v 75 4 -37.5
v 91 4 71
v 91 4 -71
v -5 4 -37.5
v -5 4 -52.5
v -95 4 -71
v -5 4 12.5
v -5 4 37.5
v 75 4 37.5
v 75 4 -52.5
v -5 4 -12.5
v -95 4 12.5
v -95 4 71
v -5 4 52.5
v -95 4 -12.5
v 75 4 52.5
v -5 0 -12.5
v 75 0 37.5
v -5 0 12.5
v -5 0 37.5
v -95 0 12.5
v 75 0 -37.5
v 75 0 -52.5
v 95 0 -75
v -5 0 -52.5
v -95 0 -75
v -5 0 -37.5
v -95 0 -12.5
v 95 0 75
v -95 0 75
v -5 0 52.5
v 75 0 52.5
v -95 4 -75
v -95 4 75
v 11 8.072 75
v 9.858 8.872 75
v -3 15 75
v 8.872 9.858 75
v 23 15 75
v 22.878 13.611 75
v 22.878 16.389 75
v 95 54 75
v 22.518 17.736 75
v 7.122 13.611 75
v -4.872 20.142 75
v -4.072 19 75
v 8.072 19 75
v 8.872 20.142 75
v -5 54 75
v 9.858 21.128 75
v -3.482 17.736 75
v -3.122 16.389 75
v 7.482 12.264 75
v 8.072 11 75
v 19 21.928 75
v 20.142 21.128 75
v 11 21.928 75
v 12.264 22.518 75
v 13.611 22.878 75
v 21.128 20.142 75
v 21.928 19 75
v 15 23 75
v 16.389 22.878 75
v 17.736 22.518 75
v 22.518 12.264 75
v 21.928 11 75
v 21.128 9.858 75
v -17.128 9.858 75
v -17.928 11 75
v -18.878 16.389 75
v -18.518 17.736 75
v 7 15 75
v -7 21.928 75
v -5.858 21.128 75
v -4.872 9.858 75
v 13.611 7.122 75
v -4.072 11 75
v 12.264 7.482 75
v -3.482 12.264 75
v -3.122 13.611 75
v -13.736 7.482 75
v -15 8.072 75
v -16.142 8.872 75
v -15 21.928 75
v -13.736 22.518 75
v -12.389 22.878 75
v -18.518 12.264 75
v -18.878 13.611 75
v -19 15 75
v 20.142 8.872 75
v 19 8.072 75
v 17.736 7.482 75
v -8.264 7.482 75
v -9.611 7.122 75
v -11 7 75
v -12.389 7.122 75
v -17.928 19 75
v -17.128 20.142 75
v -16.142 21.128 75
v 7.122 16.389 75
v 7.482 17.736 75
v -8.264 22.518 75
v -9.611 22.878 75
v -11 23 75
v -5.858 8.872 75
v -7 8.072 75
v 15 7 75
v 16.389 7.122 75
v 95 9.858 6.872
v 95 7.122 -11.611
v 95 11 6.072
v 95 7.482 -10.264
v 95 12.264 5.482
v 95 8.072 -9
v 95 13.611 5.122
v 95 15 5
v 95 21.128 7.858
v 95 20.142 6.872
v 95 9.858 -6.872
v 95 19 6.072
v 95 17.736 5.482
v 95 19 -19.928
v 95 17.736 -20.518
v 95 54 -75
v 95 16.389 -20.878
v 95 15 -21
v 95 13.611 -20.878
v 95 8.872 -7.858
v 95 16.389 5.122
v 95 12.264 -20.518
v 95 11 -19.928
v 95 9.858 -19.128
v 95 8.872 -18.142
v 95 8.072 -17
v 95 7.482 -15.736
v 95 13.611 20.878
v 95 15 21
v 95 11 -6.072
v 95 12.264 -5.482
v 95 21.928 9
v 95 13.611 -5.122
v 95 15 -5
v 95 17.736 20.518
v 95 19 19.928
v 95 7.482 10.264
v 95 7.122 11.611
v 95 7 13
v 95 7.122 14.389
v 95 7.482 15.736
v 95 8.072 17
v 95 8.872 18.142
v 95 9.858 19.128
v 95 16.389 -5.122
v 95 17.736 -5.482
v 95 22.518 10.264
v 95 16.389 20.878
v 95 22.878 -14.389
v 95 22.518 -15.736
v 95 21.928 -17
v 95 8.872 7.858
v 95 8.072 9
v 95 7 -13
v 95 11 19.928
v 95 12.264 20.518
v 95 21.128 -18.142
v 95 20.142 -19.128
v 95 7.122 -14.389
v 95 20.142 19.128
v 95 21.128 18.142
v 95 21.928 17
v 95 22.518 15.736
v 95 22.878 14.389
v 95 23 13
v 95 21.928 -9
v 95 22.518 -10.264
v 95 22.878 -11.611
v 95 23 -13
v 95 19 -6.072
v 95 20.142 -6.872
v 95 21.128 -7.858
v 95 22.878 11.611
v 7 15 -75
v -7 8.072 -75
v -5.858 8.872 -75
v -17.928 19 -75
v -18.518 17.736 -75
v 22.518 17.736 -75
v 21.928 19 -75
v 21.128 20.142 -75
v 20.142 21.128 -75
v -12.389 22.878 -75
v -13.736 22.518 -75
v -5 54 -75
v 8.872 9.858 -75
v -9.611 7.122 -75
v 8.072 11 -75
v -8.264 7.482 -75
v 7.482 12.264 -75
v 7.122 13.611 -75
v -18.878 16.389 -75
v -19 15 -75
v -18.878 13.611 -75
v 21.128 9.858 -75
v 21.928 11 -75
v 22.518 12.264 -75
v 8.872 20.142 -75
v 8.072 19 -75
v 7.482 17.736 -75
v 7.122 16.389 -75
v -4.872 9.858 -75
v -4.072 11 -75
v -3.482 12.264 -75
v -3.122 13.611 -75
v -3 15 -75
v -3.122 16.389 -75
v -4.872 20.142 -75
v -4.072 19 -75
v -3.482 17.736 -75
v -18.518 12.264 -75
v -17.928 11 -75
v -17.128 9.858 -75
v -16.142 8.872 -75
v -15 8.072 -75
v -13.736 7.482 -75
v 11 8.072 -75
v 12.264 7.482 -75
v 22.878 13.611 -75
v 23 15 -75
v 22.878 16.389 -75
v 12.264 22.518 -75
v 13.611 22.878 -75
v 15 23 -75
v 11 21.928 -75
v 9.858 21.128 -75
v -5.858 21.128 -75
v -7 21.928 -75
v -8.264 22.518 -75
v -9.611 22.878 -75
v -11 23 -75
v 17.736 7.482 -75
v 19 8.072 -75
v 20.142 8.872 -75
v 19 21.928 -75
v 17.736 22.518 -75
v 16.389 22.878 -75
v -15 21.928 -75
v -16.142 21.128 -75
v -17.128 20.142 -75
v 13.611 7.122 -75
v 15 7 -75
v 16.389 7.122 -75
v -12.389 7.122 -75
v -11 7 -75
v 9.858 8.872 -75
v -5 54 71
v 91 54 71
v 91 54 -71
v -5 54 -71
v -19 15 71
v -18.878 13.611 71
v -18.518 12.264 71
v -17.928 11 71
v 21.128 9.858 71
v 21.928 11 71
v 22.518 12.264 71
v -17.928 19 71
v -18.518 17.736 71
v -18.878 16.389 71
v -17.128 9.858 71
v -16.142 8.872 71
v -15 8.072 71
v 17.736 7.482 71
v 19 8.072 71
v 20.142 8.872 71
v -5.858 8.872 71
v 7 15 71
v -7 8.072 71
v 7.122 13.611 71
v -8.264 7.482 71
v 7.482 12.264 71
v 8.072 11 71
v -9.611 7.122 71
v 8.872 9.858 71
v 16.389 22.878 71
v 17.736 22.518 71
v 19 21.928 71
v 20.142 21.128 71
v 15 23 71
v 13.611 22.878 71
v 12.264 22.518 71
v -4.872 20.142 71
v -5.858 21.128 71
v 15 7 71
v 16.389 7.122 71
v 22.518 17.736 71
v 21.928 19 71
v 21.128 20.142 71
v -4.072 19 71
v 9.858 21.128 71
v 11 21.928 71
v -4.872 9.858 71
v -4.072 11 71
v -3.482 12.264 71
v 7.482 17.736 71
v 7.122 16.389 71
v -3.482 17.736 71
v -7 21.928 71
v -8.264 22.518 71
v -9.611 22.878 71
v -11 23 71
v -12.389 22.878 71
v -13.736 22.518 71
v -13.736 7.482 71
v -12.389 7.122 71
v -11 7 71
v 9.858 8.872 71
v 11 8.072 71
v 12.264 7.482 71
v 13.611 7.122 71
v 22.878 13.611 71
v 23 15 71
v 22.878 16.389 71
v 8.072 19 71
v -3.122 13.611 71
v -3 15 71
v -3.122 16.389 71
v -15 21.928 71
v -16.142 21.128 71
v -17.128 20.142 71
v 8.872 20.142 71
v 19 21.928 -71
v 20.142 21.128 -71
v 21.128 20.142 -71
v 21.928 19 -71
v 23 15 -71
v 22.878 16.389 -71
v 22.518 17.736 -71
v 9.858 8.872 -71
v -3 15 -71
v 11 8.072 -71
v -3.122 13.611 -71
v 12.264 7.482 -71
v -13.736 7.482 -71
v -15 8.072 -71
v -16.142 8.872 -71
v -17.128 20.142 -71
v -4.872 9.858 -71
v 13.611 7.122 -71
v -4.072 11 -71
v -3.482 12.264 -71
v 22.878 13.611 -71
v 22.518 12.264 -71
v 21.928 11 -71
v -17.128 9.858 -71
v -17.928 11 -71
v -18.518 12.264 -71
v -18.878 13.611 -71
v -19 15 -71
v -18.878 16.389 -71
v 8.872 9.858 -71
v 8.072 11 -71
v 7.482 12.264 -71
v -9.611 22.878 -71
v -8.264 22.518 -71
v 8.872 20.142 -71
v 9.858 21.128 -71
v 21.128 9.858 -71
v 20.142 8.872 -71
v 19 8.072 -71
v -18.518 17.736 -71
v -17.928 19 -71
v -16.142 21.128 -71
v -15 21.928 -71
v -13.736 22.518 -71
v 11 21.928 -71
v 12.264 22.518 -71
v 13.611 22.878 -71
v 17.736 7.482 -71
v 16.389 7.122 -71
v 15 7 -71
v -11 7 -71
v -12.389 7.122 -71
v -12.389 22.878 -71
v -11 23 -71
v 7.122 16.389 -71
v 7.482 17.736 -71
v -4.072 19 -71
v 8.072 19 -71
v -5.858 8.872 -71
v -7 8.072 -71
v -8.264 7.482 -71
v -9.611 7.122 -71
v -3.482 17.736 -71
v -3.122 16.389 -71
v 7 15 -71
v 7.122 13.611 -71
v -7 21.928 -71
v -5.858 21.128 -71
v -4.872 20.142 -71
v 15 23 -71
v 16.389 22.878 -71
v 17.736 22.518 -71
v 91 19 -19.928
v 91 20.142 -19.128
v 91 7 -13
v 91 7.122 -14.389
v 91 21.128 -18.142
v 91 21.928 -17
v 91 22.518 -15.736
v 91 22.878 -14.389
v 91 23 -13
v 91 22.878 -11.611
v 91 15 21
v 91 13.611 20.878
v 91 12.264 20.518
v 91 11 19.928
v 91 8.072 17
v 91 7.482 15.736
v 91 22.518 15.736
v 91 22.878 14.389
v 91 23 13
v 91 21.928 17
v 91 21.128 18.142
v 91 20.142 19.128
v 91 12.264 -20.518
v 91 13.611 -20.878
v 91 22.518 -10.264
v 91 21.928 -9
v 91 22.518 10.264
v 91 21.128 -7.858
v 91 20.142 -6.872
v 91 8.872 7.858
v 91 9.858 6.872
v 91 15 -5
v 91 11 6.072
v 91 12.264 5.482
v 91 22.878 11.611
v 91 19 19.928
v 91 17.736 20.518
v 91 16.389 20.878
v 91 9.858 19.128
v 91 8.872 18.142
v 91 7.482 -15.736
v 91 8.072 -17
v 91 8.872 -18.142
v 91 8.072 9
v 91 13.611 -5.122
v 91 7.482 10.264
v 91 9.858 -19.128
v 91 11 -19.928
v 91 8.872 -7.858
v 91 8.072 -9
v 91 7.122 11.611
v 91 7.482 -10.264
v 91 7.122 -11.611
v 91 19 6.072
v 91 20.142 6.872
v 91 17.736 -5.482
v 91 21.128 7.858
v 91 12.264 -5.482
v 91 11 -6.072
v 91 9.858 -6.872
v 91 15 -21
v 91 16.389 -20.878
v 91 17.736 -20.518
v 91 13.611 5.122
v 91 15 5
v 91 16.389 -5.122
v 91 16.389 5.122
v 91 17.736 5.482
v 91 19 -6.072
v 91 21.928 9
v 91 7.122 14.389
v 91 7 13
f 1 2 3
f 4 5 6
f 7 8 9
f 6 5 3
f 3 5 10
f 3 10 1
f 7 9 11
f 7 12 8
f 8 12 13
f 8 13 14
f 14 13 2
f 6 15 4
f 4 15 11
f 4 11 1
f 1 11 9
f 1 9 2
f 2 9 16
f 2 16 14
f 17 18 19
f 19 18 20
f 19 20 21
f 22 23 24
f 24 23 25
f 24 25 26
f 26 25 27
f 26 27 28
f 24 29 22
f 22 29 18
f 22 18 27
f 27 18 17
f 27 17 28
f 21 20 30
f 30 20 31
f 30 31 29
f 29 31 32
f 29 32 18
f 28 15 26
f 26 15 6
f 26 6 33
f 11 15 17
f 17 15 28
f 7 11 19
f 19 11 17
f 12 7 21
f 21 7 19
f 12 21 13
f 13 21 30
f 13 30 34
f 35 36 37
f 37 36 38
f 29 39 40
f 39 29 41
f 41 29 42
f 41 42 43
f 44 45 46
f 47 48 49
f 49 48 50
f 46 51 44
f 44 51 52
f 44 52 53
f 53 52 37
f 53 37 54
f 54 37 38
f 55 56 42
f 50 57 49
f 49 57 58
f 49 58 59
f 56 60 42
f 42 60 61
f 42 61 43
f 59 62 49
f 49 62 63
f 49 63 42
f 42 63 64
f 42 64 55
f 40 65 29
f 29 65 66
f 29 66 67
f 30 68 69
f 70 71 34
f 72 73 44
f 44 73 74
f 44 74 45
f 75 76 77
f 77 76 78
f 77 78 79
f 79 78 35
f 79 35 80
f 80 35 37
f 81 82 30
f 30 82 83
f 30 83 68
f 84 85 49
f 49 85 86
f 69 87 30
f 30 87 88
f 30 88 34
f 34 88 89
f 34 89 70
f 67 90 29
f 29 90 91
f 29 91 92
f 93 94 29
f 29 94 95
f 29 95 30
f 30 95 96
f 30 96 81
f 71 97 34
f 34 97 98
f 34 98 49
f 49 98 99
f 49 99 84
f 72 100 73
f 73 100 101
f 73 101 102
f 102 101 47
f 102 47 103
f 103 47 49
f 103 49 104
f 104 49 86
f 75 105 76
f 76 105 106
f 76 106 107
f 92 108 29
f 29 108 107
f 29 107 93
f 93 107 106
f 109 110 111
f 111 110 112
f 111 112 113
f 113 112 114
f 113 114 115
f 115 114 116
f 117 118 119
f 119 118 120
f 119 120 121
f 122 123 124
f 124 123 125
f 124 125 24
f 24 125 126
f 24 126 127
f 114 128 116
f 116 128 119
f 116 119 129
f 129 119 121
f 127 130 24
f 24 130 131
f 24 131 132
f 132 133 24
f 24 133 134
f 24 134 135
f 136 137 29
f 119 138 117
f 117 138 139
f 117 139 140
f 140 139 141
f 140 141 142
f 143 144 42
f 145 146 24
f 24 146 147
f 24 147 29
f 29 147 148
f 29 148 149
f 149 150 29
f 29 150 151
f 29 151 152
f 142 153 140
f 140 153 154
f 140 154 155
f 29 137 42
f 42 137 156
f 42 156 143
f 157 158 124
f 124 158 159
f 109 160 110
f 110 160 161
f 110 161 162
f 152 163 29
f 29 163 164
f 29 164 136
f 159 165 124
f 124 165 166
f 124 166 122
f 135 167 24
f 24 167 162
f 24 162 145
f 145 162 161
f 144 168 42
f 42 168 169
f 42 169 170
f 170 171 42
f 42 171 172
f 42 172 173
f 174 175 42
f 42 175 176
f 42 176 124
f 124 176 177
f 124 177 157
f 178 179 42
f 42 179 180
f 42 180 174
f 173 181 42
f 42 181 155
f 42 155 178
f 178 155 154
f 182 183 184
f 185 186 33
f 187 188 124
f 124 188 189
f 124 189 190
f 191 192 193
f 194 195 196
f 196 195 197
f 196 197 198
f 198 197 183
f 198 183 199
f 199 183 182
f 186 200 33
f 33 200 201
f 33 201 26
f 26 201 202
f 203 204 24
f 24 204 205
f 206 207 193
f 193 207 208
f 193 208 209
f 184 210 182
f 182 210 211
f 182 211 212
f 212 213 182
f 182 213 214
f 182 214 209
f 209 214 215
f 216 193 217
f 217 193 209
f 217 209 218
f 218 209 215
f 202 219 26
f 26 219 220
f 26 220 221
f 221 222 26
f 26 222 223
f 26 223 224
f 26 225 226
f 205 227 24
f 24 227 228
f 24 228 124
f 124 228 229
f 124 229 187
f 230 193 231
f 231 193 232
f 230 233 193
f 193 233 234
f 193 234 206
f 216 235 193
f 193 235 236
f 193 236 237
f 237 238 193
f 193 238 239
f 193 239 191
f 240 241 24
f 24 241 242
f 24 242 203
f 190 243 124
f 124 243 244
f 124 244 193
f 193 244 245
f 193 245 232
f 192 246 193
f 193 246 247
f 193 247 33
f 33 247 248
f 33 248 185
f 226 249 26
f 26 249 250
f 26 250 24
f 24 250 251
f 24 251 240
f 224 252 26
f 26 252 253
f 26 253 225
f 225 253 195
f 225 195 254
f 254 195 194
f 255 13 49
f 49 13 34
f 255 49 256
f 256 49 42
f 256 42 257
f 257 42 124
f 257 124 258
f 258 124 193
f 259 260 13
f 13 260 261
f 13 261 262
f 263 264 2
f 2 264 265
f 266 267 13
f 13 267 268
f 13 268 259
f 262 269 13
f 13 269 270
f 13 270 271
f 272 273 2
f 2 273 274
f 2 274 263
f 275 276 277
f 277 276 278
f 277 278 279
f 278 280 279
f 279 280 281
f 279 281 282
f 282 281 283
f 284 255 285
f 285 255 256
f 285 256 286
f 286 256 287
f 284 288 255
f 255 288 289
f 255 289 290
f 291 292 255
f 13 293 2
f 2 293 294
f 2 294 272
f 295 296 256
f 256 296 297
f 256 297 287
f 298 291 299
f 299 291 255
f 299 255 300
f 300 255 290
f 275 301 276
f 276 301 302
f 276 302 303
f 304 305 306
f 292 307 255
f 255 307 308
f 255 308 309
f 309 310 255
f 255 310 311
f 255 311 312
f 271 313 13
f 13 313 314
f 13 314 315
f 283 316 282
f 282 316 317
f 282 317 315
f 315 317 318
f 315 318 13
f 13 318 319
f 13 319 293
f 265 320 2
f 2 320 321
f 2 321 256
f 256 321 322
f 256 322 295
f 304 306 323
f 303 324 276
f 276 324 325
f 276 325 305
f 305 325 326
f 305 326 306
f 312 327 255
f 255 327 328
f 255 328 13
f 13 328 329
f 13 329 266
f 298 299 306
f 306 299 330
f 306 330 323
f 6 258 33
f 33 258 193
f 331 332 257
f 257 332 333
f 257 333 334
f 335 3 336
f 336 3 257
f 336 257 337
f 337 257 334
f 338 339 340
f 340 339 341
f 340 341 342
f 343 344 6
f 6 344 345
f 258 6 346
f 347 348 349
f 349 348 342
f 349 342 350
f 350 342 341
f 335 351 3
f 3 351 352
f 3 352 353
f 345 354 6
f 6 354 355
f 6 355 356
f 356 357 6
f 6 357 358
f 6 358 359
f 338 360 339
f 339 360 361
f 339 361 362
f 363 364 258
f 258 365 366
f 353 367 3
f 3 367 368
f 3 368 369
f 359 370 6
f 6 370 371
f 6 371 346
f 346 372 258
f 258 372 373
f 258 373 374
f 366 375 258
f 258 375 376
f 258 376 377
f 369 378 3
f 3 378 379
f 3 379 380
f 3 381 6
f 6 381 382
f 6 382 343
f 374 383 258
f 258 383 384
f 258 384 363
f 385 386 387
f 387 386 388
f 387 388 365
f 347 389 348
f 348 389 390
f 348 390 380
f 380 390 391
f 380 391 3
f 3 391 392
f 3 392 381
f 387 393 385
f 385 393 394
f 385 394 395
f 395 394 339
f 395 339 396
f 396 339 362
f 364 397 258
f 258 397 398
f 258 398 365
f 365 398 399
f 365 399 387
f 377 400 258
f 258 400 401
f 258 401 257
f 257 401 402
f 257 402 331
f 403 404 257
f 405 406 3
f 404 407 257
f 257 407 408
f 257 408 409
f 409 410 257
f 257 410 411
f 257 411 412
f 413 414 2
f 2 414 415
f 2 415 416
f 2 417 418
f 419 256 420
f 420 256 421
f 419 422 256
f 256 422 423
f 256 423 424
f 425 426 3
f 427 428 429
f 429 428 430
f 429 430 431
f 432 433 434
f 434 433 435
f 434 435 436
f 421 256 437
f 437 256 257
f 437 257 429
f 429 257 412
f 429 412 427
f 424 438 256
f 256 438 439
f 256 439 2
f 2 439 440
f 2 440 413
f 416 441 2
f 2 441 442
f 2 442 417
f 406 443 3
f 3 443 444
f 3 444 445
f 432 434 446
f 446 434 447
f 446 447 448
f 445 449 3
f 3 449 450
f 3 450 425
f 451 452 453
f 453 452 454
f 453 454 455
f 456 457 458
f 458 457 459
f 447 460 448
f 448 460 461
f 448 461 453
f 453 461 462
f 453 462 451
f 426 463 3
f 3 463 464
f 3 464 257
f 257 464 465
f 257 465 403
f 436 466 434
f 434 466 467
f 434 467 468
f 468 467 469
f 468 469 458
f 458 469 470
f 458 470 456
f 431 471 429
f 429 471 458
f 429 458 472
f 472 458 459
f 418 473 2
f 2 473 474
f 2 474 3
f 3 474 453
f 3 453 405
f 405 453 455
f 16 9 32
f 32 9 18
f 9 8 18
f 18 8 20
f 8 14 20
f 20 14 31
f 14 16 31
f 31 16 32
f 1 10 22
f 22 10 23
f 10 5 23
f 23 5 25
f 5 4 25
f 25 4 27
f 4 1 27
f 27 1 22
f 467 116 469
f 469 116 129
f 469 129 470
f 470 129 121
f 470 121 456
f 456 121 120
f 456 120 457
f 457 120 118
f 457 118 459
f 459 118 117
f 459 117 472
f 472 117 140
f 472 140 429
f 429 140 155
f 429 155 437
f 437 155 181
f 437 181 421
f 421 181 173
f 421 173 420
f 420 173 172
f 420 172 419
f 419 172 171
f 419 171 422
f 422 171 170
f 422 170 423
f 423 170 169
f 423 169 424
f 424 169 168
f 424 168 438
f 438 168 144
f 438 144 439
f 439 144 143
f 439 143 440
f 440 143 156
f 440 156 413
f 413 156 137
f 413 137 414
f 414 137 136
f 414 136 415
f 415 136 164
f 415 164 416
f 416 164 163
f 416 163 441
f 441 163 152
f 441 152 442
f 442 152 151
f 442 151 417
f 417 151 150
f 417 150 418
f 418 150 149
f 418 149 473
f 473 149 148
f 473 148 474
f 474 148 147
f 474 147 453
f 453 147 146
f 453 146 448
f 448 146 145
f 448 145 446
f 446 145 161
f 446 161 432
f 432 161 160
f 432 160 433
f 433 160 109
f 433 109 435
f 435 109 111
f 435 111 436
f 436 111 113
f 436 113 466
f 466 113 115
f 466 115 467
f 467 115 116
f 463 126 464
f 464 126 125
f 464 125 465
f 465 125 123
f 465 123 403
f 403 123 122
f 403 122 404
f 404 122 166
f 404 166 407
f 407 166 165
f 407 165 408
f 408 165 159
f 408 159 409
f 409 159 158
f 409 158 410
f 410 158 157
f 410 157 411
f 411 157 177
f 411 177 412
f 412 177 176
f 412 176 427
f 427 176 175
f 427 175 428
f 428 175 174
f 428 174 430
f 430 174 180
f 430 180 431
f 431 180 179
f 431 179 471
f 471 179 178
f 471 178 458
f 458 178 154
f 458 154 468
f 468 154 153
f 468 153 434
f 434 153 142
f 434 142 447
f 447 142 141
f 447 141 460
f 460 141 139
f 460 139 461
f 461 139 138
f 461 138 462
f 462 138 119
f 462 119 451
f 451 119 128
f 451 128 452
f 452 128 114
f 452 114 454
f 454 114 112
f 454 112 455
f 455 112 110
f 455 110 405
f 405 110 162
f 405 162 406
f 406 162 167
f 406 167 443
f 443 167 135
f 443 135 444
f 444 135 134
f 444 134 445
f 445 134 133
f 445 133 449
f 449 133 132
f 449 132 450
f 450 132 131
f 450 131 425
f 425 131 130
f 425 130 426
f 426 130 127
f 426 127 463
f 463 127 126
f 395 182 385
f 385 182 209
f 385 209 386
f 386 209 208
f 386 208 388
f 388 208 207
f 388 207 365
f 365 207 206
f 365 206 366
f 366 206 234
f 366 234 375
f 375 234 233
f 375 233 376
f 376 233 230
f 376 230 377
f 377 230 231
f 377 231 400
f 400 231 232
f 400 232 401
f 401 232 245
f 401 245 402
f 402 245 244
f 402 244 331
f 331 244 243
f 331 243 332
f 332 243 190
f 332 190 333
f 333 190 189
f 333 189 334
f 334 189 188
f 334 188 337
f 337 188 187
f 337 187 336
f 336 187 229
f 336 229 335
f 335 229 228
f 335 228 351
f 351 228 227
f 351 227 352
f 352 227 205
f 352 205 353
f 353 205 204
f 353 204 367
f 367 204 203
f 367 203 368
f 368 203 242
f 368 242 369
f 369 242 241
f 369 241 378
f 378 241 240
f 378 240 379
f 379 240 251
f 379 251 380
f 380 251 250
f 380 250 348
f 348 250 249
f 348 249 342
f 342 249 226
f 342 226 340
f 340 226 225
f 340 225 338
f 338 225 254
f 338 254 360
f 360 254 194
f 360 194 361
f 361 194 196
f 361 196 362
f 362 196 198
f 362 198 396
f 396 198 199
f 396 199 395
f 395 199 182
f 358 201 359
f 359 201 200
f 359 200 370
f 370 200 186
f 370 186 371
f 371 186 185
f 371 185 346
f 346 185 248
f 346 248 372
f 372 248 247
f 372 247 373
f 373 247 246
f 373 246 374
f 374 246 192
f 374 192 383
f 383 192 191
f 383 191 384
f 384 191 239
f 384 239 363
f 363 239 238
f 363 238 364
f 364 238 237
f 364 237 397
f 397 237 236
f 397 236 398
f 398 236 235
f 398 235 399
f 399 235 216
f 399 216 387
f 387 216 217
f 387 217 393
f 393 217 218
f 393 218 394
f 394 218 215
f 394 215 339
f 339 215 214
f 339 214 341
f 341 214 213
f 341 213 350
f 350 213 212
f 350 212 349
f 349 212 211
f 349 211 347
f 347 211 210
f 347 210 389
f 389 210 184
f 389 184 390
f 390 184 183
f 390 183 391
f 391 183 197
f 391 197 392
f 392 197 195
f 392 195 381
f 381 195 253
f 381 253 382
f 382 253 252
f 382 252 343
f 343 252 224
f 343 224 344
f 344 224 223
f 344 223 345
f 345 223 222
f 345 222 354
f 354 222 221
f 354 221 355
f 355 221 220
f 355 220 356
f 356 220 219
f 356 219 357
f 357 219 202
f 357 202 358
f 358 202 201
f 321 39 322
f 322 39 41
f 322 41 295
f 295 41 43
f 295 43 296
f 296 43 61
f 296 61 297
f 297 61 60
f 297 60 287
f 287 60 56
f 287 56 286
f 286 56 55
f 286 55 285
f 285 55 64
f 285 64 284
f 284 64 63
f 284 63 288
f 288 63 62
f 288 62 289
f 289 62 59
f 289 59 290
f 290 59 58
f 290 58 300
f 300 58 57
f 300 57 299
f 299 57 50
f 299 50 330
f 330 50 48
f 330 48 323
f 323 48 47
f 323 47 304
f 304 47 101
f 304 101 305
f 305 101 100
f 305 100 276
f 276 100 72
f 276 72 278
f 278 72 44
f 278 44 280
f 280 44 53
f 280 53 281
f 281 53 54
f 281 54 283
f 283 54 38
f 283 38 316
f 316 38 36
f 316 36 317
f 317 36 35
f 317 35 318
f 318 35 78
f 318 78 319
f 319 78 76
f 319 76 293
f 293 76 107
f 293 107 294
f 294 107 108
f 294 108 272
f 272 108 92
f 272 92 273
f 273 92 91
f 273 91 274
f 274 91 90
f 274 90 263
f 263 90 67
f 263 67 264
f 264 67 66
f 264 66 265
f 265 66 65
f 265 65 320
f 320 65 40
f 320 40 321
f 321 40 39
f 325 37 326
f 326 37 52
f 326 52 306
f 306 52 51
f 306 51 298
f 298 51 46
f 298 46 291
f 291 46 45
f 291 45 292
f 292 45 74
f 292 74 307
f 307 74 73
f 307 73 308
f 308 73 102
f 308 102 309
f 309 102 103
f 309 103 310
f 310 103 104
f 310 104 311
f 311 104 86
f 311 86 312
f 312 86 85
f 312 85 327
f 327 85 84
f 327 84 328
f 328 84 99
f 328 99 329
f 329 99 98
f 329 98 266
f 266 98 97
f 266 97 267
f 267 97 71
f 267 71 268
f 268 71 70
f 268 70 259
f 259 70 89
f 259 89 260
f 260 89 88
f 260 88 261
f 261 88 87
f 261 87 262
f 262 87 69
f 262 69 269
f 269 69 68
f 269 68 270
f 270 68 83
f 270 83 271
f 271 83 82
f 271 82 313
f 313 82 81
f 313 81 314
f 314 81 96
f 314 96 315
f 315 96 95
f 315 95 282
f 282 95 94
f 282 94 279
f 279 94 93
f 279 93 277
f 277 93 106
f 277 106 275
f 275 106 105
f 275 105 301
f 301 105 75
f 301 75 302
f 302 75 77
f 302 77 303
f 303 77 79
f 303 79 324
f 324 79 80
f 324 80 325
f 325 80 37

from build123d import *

# Parameters (mm, degrees)
BOSS_EXTRUDE1_DEPTH = 4
BOSS_EXTRUDE2_DEPTH = 4
SKETCH3_W           = 142
SKETCH3_H           = 50
BOSS_EXTRUDE3_DEPTH = 4
SKETCH4_W           = 80
SKETCH4_H           = 15
CUT_EXTRUDE1_DEPTH  = 4
SKETCH5_R           = 8
CUT_EXTRUDE2_DEPTH  = 4
SKETCH6_R           = 8
CUT_EXTRUDE3_DEPTH  = 4


with BuildPart() as part:
    # Sketch1 → Boss-Extrude1 (new body)
    with BuildSketch(Plane(origin=(0, 0, 0), x_dir=(1, 0, 0), z_dir=(0, 1, 0))):
        Polygon((-5, -12.5), (-5, 12.5), (-95, 12.5), (-95, 75), (95, 75), (95, -75), (-95, -75), (-95, -12.5), align=None)
    extrude(amount=BOSS_EXTRUDE1_DEPTH)

    # Sketch2 → Boss-Extrude2 (add)
    with BuildSketch(Plane.XY.offset(75)):
        Polygon((95, 4), (95, 54), (-5, 54), (-95, 4), align=None)
    boss_extrude2 = extrude(amount=-BOSS_EXTRUDE2_DEPTH)

    # Mirror1: Boss-Extrude2 across plane
    add(boss_extrude2.mirror(Plane.XY))

    # Sketch3 → Boss-Extrude3 (add)
    with BuildSketch(Plane(origin=(95, 0, 0), x_dir=(0, 0, -1), z_dir=(1, 0, 0))):
        with Locations((0, 29)):
            Rectangle(SKETCH3_W, SKETCH3_H)
    extrude(amount=-BOSS_EXTRUDE3_DEPTH)

    # Sketch4 → Cut-Extrude1 (cut)
    with BuildSketch(Plane.XZ):
        with Locations((35, 45)):
            Rectangle(SKETCH4_W, SKETCH4_H)
    cut_extrude1 = extrude(amount=-CUT_EXTRUDE1_DEPTH, mode=Mode.SUBTRACT)

    # Mirror2: Cut-Extrude1 across plane
    add(cut_extrude1.mirror(Plane.XY), mode=Mode.SUBTRACT)

    # Sketch5 → Cut-Extrude2 (cut)
    with BuildSketch(Plane(origin=(95, 0, 0), x_dir=(0, 0, -1), z_dir=(1, 0, 0))):
        with Locations((-13, 15)):
            Circle(SKETCH5_R)
        with Locations((13, 15)):
            Circle(SKETCH5_R)
    extrude(amount=-CUT_EXTRUDE2_DEPTH, mode=Mode.SUBTRACT)

    # Sketch6 → Cut-Extrude3 (cut)
    with BuildSketch(Plane(origin=(0, 0, -75), x_dir=(-1, 0, 0), z_dir=(0, 0, -1))):
        with Locations((-15, 15)):
            Circle(SKETCH6_R)
        with Locations((11, 15)):
            Circle(SKETCH6_R)
    cut_extrude3 = extrude(amount=-CUT_EXTRUDE3_DEPTH, mode=Mode.SUBTRACT)

    # Mirror3: Cut-Extrude3 across plane
    add(cut_extrude3.mirror(Plane.XY), mode=Mode.SUBTRACT)


solid = part.part
